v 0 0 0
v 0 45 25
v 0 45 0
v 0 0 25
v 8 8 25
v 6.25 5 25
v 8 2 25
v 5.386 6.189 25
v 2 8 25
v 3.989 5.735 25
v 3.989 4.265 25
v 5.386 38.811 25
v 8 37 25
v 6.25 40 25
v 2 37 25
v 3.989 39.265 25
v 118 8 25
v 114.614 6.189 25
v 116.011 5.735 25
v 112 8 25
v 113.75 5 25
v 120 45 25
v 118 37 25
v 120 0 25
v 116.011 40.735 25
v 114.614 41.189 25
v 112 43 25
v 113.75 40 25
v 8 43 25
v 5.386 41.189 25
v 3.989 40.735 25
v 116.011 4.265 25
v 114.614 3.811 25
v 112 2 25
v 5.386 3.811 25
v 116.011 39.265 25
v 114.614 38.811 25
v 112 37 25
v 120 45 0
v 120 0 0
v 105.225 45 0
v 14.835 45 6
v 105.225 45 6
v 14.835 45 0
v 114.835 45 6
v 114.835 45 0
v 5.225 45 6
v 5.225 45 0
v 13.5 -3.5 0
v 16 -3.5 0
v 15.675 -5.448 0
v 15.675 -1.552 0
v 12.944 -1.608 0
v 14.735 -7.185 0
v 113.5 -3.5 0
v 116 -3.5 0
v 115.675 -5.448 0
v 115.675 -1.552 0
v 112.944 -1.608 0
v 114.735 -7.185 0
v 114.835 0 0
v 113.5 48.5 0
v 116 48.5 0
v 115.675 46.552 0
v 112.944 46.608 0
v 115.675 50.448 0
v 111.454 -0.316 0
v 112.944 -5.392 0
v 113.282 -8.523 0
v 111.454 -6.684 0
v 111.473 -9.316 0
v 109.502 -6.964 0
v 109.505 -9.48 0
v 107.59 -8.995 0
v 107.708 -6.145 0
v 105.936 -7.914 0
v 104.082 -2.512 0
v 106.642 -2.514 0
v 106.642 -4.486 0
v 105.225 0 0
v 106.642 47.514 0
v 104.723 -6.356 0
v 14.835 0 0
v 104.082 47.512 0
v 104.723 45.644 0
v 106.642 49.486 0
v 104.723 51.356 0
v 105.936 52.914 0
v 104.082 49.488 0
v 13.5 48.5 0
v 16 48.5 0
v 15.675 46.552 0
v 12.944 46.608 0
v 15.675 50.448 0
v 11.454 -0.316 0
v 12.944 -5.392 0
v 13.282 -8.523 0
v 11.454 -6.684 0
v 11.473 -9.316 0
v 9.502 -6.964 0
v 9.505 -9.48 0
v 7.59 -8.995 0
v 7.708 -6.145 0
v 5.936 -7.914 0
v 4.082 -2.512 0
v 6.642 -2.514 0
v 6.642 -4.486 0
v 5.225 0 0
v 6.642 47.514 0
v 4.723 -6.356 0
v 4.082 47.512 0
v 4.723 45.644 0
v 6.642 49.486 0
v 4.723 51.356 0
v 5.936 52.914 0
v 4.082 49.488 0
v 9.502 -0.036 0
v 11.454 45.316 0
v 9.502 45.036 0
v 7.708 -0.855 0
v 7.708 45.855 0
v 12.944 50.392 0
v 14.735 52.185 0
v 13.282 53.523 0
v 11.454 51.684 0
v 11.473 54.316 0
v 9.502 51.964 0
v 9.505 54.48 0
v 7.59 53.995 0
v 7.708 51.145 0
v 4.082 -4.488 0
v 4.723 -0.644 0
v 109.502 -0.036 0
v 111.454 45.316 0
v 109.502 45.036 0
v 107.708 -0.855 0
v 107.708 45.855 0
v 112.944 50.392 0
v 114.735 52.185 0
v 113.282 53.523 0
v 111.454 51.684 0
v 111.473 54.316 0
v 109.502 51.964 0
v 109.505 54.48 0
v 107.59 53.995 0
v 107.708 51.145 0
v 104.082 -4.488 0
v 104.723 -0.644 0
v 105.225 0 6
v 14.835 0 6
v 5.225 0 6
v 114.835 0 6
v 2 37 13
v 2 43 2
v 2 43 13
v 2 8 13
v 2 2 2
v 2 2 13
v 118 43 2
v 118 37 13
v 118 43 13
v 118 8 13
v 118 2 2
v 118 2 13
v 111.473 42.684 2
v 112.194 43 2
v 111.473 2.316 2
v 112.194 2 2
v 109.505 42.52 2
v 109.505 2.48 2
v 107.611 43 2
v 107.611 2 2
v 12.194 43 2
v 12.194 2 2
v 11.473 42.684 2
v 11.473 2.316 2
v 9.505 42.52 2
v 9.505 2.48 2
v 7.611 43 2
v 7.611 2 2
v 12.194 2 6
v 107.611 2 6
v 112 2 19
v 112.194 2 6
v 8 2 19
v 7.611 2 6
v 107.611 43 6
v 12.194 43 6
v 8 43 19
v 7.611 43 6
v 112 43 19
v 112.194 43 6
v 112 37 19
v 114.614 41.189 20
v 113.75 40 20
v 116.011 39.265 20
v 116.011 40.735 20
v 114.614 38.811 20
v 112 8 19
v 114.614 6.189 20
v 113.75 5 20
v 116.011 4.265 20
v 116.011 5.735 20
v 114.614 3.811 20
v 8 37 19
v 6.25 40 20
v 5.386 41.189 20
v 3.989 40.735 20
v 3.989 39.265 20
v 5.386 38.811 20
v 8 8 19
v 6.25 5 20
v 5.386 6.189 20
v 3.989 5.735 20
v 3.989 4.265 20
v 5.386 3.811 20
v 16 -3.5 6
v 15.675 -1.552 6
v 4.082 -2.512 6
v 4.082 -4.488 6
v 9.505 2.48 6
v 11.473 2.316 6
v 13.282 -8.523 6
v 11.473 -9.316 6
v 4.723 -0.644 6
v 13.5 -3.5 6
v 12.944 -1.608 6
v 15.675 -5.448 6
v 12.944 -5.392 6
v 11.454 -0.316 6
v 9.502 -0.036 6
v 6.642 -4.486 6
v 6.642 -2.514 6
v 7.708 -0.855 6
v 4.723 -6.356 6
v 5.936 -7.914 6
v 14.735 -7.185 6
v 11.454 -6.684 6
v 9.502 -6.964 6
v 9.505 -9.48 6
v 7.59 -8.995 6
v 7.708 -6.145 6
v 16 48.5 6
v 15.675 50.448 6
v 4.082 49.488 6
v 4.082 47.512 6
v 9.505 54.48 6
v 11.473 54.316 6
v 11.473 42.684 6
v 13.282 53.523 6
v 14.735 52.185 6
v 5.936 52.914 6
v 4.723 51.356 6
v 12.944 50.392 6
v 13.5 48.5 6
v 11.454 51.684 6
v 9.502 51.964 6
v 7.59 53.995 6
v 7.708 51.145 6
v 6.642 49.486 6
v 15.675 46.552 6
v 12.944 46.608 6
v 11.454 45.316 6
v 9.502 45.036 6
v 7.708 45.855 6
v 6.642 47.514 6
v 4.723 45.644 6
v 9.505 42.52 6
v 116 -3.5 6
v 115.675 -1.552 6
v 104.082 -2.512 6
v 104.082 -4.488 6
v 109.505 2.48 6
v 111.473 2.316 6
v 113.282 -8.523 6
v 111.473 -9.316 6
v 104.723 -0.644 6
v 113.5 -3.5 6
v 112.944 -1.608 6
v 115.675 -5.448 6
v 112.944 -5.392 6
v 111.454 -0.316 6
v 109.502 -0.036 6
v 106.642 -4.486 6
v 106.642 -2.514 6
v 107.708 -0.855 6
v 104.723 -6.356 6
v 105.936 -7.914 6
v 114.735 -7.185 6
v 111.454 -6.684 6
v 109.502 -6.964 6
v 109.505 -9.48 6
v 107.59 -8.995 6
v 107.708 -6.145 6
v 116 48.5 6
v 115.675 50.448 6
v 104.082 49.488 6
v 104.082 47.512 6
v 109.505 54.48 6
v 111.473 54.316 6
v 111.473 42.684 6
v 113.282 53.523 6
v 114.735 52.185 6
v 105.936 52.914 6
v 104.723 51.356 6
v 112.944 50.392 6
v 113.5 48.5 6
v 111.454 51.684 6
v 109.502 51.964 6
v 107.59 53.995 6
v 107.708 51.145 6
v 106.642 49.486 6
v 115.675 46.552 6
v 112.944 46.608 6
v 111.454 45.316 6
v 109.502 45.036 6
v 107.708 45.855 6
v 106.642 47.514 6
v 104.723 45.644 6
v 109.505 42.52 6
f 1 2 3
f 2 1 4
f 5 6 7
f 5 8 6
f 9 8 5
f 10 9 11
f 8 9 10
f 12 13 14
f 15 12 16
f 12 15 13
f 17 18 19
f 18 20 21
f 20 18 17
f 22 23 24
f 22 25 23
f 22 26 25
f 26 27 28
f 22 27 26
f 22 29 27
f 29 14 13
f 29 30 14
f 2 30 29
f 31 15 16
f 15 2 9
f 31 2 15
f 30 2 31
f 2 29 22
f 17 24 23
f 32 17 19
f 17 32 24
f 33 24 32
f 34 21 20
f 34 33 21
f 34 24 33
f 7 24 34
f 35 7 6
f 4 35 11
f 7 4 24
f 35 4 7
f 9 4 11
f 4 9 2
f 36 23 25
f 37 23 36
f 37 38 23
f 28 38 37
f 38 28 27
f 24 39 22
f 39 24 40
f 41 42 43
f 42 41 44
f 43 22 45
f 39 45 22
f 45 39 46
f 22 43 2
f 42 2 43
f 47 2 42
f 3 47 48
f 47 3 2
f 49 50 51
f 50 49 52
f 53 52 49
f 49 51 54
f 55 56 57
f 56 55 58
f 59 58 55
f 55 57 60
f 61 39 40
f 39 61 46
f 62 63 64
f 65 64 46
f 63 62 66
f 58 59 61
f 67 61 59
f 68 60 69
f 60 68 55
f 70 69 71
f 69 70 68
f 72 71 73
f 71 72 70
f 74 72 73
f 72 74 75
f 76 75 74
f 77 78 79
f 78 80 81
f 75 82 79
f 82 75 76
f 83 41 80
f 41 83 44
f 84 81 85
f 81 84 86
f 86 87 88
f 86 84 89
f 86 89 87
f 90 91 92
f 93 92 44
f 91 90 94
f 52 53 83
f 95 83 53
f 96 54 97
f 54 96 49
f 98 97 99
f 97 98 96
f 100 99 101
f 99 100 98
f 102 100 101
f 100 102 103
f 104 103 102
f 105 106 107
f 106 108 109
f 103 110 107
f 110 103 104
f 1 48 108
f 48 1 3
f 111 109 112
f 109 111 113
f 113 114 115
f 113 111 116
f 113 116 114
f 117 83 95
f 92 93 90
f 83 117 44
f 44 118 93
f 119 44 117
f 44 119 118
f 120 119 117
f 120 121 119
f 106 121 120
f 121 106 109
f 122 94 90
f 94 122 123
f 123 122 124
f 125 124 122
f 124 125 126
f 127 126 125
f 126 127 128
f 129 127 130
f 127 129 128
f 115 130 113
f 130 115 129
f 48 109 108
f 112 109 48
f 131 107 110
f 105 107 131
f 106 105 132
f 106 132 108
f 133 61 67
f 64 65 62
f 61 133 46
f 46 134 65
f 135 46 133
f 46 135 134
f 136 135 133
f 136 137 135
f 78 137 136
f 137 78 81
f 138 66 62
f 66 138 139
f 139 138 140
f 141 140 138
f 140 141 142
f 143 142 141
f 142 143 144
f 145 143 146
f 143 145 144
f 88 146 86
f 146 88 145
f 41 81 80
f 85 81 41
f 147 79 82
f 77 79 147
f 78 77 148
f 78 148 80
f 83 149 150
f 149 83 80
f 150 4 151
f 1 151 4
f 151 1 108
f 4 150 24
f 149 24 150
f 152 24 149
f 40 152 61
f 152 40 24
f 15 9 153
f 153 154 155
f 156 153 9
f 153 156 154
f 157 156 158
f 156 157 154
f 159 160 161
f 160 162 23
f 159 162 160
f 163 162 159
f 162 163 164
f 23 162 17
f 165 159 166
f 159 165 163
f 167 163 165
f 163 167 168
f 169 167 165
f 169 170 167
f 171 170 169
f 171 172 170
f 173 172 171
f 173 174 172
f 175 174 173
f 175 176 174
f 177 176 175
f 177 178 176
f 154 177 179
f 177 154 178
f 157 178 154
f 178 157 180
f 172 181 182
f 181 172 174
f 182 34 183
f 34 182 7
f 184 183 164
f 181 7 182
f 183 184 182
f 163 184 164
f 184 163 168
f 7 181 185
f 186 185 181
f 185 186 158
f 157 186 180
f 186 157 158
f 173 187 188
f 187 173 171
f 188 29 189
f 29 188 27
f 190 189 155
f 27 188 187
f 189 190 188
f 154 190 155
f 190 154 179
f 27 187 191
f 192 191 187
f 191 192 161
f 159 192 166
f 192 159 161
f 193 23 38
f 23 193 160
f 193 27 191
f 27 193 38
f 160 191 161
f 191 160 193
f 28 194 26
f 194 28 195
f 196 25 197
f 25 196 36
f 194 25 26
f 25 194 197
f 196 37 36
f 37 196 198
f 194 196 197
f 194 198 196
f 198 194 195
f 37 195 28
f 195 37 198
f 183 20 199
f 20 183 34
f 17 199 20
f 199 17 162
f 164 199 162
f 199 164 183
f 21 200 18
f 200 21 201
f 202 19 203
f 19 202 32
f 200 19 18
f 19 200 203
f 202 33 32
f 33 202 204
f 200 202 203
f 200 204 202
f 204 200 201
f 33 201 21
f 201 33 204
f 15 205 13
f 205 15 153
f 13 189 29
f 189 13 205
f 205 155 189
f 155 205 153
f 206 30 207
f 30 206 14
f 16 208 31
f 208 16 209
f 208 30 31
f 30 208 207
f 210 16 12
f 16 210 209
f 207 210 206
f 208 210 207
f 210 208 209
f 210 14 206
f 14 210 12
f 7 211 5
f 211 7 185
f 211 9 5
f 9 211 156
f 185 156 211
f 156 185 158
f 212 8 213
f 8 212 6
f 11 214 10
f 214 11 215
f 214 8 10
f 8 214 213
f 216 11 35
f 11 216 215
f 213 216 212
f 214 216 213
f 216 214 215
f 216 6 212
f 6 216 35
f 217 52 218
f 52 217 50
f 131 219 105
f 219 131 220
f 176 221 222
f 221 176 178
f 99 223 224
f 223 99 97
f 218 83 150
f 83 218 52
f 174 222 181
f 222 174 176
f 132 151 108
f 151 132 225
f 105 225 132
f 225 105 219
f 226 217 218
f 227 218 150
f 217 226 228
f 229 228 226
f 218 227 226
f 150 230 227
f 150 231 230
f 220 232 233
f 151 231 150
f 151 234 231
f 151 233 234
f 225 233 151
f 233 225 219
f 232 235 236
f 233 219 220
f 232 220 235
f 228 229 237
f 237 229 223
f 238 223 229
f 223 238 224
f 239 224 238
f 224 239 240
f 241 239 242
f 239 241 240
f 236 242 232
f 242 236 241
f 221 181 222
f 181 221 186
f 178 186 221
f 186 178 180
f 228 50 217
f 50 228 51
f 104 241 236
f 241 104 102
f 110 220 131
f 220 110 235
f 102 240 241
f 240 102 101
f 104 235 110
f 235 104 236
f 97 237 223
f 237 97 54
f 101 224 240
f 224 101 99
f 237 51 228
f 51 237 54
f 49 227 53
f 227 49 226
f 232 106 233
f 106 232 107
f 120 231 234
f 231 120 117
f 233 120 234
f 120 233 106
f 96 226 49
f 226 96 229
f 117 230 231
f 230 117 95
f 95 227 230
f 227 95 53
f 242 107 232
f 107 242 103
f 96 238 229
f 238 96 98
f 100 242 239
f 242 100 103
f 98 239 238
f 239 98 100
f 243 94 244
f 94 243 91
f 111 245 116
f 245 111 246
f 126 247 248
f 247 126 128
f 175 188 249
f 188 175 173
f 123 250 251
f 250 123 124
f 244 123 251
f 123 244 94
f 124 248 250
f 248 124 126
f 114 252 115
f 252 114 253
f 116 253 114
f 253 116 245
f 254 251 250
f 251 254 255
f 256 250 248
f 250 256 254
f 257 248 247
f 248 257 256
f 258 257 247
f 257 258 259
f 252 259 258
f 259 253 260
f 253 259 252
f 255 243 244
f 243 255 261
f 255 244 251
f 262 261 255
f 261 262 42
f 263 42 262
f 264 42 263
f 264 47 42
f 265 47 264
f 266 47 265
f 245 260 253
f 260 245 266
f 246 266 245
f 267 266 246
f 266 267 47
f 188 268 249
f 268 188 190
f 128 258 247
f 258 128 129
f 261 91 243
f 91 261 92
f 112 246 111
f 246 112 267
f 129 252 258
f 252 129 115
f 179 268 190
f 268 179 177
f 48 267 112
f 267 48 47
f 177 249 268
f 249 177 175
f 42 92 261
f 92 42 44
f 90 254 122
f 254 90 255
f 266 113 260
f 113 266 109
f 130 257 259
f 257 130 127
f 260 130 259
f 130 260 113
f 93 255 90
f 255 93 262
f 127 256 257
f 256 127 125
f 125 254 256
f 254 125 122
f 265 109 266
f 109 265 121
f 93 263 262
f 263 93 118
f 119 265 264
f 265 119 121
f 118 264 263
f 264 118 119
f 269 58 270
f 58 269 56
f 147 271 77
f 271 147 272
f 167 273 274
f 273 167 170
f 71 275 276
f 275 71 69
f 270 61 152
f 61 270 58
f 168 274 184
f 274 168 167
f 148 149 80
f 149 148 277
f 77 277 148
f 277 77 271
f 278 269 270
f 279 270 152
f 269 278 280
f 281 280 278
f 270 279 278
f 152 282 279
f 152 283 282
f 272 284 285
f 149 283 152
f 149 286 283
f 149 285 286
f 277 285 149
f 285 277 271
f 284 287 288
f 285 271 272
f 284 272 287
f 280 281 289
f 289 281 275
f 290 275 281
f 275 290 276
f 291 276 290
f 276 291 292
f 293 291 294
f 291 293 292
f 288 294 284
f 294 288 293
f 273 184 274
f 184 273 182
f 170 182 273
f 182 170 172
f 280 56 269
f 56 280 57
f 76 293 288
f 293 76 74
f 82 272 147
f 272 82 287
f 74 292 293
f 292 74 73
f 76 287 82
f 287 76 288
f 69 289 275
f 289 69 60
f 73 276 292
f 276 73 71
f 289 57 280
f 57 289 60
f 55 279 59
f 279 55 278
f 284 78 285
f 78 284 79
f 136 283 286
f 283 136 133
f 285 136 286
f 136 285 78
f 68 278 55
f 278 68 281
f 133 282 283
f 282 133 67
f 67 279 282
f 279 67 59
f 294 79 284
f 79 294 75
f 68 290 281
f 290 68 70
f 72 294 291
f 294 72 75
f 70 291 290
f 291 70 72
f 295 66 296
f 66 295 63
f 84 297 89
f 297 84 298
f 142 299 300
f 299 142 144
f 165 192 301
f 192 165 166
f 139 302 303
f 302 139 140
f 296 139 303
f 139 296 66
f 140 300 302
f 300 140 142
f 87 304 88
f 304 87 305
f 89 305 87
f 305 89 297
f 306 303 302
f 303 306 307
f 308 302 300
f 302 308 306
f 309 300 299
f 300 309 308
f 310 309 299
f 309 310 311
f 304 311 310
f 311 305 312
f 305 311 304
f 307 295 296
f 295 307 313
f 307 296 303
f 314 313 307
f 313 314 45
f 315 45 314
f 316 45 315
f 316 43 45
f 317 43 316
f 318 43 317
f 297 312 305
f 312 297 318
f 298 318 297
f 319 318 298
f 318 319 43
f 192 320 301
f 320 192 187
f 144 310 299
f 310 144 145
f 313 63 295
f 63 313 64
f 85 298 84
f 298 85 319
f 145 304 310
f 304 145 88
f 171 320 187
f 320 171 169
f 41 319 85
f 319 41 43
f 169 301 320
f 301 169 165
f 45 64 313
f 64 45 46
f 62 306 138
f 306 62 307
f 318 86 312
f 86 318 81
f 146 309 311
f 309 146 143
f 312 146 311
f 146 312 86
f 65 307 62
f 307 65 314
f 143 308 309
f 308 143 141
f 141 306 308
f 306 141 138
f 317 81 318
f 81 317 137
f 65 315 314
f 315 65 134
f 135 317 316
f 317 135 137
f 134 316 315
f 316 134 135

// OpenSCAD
screwport = [6, 6, 6];
chassis_attach_hole_diam = 7;
chassis_attach_wall_thickness = 2.5;
chassis_attach_height = 6;

module ScrewBox() {
  difference() {
    hull() {
        cube(screwport);
        translate([0,6,0]) {
          rotate([90,90,0]) {
            linear_extrude(height=6, convexity=10, twist=0) {
                polygon(points=[[0,0], [6,0], [0,6]]);
            }
          }
        }
    }
    translate([3,3,1]) {
      cylinder(6, d=2.5);
    }
  }
}

module ChassisAttach(x, y) {
    translate([x,y]) {
        difference() {
            cylinder(chassis_attach_height, d=chassis_attach_hole_diam+chassis_attach_wall_thickness*2);
            cylinder(chassis_attach_height, d=chassis_attach_hole_diam);
        }
    }
}

difference() {
    cube([120, 45, 25]);
    translate([2, 2, 2]) {
        cube([116, 41, 24]);
    }
}

translate([118, 37, 19])
  mirror([1,0,0])
    ScrewBox();
translate([118,2,19])
  mirror([1,0,0])
      ScrewBox();
translate([2,37,19]) ScrewBox();
translate([2,2,19]) ScrewBox();


ChassisAttach(10, -3.5);
ChassisAttach(10, 48.5);
ChassisAttach(110, -3.5);
ChassisAttach(110, 48.5);
